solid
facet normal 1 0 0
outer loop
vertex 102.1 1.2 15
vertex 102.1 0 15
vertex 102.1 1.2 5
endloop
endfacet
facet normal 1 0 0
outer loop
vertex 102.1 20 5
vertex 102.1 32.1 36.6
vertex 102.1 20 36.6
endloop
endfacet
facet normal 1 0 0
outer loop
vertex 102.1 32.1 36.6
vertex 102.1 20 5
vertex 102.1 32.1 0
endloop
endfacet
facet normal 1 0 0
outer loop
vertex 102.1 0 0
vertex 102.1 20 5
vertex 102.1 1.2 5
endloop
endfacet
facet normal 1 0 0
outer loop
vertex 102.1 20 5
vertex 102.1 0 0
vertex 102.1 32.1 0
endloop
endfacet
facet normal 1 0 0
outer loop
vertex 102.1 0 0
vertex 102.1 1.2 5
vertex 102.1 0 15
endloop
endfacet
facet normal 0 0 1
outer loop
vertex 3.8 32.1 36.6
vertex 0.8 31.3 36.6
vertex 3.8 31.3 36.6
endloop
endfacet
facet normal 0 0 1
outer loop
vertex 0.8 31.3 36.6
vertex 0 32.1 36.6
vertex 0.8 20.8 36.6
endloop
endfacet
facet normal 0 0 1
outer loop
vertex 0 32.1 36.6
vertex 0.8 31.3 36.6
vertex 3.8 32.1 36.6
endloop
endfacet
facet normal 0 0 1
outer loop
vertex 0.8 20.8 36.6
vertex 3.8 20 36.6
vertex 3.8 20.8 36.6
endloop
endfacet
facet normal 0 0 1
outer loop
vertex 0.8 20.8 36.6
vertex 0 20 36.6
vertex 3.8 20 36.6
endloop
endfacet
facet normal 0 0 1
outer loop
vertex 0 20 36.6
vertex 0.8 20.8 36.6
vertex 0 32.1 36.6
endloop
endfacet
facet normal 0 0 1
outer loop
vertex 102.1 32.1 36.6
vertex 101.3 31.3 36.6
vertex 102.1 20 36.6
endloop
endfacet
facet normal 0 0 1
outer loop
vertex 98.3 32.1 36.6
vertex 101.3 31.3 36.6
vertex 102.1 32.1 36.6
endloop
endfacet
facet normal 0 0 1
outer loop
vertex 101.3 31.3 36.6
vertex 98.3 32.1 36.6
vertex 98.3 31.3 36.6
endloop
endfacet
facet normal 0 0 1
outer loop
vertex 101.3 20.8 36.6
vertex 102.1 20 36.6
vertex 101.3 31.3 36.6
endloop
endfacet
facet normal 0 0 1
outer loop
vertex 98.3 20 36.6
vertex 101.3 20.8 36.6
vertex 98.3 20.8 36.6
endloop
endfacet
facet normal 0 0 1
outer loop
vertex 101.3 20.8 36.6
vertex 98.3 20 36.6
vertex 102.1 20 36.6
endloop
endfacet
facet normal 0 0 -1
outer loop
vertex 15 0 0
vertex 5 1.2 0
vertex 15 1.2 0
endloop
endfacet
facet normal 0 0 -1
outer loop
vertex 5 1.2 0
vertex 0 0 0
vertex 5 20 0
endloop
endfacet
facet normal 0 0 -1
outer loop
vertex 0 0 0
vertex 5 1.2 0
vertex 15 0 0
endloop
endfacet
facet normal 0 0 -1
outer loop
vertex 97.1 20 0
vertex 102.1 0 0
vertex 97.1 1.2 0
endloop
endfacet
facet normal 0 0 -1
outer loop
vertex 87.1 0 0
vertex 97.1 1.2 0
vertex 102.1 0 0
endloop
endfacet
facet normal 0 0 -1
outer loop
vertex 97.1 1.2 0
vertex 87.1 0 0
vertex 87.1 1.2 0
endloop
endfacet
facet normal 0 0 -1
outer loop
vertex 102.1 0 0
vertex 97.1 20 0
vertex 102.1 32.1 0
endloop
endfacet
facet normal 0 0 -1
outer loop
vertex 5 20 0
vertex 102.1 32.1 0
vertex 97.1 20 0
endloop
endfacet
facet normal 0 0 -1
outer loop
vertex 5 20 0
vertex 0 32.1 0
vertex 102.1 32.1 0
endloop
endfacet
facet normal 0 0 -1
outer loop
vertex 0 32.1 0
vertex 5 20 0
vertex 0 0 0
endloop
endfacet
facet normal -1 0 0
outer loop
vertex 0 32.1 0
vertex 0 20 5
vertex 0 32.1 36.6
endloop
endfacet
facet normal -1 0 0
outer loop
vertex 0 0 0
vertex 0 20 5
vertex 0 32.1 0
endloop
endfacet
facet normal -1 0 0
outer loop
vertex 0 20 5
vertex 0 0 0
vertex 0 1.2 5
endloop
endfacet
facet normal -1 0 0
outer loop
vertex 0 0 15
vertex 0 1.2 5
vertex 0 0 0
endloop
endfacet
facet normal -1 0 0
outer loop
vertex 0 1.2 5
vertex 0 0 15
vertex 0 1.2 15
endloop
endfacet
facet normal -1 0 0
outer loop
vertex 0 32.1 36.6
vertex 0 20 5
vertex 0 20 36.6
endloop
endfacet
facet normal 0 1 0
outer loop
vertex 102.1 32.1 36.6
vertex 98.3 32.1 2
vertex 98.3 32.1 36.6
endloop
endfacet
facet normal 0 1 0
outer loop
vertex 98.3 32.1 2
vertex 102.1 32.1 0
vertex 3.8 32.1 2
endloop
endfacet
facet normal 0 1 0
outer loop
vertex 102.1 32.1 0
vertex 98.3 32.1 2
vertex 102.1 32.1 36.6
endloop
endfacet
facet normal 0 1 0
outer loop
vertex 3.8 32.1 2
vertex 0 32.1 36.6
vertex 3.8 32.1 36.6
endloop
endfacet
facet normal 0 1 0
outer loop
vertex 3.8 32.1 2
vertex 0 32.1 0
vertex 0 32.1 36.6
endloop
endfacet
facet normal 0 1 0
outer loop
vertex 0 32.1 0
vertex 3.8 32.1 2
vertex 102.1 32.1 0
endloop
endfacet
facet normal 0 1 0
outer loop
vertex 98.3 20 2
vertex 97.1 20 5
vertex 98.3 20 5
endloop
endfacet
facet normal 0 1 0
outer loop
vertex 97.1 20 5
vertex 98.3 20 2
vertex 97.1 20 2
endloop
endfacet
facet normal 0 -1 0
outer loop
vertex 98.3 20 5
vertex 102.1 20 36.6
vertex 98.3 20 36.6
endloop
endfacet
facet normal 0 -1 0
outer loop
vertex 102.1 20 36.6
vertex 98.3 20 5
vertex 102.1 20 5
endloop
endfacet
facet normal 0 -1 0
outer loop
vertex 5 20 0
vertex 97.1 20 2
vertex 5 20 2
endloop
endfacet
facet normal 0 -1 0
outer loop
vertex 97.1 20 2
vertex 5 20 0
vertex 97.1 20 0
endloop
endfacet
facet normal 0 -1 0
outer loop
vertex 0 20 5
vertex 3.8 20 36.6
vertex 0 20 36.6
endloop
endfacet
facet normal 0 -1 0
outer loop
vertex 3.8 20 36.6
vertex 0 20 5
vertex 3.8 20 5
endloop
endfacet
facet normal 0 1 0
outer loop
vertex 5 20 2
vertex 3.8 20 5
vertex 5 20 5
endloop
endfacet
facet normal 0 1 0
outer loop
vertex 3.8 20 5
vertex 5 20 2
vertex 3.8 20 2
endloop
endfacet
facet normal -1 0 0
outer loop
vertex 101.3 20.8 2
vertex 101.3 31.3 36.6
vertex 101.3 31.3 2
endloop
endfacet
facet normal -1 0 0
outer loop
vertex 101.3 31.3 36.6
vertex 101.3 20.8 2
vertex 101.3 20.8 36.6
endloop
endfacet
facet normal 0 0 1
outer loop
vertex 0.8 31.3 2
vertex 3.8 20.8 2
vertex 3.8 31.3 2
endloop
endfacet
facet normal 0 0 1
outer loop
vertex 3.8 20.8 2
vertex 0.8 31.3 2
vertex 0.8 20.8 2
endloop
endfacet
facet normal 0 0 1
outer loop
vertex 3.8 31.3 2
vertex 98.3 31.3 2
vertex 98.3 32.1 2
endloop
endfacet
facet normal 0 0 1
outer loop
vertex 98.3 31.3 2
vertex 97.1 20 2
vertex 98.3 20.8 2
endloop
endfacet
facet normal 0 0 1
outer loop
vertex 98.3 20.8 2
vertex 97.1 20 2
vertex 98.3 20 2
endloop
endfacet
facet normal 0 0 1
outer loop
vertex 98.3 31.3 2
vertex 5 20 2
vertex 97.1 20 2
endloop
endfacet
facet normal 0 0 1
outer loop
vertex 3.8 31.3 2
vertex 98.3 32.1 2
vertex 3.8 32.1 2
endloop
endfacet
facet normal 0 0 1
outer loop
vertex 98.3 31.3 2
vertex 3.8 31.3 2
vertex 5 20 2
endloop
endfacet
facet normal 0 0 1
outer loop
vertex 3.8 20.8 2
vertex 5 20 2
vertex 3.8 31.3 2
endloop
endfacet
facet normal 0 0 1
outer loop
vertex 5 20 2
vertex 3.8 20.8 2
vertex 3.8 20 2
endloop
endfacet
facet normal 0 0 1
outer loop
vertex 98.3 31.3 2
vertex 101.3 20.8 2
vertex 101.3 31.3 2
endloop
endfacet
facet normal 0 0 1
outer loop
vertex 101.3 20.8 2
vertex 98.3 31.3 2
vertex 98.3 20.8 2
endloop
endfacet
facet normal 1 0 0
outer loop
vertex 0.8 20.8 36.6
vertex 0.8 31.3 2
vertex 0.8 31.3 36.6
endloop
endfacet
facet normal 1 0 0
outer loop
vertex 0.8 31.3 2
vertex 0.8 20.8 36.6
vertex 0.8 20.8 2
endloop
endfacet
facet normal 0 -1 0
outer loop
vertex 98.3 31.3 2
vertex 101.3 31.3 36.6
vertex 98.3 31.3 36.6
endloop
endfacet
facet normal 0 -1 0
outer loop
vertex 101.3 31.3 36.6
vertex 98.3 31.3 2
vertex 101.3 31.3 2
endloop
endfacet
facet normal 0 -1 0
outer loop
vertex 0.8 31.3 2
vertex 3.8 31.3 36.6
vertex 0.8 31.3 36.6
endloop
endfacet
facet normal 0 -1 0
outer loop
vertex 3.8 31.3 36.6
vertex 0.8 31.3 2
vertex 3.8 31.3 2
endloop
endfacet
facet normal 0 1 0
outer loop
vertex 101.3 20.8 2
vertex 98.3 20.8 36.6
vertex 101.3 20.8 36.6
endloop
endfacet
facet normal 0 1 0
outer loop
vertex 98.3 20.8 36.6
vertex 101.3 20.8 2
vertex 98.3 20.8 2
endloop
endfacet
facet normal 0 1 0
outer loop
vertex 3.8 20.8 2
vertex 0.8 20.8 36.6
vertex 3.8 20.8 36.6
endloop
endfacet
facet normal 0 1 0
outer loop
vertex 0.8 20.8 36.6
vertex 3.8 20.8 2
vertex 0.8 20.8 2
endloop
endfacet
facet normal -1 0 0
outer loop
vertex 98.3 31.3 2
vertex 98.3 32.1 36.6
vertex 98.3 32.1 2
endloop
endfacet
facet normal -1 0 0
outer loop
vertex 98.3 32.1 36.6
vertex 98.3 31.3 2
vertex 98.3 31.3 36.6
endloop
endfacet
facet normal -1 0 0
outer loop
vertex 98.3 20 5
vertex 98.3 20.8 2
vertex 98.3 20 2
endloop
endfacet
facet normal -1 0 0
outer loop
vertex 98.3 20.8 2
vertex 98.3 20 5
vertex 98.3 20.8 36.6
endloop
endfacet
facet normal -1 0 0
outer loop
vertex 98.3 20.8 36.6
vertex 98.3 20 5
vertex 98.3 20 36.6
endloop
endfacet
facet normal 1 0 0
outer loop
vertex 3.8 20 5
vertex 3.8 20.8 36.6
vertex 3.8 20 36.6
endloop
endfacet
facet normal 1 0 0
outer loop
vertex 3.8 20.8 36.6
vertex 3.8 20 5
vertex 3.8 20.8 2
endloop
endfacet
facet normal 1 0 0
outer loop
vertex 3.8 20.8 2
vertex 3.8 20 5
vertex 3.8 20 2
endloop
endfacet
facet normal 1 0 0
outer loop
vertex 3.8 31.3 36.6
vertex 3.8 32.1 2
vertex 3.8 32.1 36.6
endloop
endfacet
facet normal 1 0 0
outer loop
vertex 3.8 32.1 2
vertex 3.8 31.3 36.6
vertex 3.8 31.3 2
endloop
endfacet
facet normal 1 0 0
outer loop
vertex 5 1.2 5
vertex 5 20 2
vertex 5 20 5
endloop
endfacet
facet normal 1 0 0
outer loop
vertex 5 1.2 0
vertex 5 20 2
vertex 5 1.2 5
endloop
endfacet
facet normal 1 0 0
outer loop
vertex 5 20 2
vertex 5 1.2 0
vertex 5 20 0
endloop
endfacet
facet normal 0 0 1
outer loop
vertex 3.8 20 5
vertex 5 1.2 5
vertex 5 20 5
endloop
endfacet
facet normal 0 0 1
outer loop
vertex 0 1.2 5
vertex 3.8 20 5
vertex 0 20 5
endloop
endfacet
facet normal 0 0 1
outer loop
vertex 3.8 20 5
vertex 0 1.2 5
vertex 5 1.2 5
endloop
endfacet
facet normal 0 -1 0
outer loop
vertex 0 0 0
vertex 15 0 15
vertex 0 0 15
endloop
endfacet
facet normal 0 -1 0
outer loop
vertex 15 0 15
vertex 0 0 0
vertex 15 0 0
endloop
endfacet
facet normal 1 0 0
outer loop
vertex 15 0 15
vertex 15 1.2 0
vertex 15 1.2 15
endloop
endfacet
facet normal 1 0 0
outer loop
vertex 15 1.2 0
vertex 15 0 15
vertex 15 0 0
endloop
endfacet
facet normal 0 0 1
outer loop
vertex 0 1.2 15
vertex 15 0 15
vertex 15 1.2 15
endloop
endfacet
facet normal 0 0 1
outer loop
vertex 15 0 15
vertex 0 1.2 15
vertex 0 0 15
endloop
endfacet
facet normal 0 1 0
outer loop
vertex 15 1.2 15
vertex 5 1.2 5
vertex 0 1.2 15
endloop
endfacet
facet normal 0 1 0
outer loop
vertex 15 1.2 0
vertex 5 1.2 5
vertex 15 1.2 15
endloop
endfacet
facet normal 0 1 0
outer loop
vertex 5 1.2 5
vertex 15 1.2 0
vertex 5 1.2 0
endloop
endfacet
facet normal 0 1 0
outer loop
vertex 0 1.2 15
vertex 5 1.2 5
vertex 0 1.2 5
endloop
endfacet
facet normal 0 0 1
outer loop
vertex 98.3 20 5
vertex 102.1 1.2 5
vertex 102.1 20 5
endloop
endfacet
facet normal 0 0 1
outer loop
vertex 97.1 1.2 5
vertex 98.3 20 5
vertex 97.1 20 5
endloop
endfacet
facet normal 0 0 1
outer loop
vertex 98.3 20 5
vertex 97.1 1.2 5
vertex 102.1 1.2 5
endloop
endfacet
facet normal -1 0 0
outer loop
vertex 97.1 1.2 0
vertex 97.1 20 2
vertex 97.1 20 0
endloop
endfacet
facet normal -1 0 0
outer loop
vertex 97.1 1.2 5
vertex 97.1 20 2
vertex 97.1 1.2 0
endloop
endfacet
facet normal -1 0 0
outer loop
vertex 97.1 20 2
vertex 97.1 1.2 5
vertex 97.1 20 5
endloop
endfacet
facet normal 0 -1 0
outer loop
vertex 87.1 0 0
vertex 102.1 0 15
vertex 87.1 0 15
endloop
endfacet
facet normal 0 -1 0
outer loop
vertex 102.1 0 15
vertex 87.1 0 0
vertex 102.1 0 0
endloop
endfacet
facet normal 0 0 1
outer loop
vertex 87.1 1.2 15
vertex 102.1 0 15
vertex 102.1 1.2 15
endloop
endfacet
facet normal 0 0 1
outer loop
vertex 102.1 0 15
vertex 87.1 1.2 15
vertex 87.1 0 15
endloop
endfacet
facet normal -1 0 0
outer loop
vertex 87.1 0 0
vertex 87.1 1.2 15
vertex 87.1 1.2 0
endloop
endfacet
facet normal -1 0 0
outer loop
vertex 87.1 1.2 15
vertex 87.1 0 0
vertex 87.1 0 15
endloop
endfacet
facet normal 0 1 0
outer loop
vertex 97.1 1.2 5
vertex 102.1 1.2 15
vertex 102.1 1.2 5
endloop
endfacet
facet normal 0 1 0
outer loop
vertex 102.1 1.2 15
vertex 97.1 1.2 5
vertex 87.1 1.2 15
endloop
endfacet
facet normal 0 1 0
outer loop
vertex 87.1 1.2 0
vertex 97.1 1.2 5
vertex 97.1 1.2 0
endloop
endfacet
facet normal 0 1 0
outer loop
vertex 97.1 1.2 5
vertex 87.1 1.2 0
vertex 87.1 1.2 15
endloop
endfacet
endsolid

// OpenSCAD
i_d = 10.5;
i_h = 35;
i_w = 100.5;
wall_thick = .8;
arm_length = 20;
arm_thick = 5;
pad_size = 15;
o_d = i_d+wall_thick*2;
o_h = i_h+wall_thick*2;
o_w = i_w+wall_thick*2;

translate([0, arm_length, 0]) difference() {
    cube([o_w, o_d, o_h]);
    translate([wall_thick, wall_thick, 2]) cube([i_w, i_d, i_h+100]);
    translate([wall_thick+3, 0, 2]) cube([i_w-6, o_d, i_h+100]);
}
cube([arm_thick, arm_length, arm_thick]);
cube([pad_size, 1.2, pad_size]);
translate([o_w-arm_thick, 0, 0]) cube([arm_thick, arm_length, arm_thick]);
translate([o_w-pad_size, 0, 0]) cube([pad_size, 1.2, pad_size]);
